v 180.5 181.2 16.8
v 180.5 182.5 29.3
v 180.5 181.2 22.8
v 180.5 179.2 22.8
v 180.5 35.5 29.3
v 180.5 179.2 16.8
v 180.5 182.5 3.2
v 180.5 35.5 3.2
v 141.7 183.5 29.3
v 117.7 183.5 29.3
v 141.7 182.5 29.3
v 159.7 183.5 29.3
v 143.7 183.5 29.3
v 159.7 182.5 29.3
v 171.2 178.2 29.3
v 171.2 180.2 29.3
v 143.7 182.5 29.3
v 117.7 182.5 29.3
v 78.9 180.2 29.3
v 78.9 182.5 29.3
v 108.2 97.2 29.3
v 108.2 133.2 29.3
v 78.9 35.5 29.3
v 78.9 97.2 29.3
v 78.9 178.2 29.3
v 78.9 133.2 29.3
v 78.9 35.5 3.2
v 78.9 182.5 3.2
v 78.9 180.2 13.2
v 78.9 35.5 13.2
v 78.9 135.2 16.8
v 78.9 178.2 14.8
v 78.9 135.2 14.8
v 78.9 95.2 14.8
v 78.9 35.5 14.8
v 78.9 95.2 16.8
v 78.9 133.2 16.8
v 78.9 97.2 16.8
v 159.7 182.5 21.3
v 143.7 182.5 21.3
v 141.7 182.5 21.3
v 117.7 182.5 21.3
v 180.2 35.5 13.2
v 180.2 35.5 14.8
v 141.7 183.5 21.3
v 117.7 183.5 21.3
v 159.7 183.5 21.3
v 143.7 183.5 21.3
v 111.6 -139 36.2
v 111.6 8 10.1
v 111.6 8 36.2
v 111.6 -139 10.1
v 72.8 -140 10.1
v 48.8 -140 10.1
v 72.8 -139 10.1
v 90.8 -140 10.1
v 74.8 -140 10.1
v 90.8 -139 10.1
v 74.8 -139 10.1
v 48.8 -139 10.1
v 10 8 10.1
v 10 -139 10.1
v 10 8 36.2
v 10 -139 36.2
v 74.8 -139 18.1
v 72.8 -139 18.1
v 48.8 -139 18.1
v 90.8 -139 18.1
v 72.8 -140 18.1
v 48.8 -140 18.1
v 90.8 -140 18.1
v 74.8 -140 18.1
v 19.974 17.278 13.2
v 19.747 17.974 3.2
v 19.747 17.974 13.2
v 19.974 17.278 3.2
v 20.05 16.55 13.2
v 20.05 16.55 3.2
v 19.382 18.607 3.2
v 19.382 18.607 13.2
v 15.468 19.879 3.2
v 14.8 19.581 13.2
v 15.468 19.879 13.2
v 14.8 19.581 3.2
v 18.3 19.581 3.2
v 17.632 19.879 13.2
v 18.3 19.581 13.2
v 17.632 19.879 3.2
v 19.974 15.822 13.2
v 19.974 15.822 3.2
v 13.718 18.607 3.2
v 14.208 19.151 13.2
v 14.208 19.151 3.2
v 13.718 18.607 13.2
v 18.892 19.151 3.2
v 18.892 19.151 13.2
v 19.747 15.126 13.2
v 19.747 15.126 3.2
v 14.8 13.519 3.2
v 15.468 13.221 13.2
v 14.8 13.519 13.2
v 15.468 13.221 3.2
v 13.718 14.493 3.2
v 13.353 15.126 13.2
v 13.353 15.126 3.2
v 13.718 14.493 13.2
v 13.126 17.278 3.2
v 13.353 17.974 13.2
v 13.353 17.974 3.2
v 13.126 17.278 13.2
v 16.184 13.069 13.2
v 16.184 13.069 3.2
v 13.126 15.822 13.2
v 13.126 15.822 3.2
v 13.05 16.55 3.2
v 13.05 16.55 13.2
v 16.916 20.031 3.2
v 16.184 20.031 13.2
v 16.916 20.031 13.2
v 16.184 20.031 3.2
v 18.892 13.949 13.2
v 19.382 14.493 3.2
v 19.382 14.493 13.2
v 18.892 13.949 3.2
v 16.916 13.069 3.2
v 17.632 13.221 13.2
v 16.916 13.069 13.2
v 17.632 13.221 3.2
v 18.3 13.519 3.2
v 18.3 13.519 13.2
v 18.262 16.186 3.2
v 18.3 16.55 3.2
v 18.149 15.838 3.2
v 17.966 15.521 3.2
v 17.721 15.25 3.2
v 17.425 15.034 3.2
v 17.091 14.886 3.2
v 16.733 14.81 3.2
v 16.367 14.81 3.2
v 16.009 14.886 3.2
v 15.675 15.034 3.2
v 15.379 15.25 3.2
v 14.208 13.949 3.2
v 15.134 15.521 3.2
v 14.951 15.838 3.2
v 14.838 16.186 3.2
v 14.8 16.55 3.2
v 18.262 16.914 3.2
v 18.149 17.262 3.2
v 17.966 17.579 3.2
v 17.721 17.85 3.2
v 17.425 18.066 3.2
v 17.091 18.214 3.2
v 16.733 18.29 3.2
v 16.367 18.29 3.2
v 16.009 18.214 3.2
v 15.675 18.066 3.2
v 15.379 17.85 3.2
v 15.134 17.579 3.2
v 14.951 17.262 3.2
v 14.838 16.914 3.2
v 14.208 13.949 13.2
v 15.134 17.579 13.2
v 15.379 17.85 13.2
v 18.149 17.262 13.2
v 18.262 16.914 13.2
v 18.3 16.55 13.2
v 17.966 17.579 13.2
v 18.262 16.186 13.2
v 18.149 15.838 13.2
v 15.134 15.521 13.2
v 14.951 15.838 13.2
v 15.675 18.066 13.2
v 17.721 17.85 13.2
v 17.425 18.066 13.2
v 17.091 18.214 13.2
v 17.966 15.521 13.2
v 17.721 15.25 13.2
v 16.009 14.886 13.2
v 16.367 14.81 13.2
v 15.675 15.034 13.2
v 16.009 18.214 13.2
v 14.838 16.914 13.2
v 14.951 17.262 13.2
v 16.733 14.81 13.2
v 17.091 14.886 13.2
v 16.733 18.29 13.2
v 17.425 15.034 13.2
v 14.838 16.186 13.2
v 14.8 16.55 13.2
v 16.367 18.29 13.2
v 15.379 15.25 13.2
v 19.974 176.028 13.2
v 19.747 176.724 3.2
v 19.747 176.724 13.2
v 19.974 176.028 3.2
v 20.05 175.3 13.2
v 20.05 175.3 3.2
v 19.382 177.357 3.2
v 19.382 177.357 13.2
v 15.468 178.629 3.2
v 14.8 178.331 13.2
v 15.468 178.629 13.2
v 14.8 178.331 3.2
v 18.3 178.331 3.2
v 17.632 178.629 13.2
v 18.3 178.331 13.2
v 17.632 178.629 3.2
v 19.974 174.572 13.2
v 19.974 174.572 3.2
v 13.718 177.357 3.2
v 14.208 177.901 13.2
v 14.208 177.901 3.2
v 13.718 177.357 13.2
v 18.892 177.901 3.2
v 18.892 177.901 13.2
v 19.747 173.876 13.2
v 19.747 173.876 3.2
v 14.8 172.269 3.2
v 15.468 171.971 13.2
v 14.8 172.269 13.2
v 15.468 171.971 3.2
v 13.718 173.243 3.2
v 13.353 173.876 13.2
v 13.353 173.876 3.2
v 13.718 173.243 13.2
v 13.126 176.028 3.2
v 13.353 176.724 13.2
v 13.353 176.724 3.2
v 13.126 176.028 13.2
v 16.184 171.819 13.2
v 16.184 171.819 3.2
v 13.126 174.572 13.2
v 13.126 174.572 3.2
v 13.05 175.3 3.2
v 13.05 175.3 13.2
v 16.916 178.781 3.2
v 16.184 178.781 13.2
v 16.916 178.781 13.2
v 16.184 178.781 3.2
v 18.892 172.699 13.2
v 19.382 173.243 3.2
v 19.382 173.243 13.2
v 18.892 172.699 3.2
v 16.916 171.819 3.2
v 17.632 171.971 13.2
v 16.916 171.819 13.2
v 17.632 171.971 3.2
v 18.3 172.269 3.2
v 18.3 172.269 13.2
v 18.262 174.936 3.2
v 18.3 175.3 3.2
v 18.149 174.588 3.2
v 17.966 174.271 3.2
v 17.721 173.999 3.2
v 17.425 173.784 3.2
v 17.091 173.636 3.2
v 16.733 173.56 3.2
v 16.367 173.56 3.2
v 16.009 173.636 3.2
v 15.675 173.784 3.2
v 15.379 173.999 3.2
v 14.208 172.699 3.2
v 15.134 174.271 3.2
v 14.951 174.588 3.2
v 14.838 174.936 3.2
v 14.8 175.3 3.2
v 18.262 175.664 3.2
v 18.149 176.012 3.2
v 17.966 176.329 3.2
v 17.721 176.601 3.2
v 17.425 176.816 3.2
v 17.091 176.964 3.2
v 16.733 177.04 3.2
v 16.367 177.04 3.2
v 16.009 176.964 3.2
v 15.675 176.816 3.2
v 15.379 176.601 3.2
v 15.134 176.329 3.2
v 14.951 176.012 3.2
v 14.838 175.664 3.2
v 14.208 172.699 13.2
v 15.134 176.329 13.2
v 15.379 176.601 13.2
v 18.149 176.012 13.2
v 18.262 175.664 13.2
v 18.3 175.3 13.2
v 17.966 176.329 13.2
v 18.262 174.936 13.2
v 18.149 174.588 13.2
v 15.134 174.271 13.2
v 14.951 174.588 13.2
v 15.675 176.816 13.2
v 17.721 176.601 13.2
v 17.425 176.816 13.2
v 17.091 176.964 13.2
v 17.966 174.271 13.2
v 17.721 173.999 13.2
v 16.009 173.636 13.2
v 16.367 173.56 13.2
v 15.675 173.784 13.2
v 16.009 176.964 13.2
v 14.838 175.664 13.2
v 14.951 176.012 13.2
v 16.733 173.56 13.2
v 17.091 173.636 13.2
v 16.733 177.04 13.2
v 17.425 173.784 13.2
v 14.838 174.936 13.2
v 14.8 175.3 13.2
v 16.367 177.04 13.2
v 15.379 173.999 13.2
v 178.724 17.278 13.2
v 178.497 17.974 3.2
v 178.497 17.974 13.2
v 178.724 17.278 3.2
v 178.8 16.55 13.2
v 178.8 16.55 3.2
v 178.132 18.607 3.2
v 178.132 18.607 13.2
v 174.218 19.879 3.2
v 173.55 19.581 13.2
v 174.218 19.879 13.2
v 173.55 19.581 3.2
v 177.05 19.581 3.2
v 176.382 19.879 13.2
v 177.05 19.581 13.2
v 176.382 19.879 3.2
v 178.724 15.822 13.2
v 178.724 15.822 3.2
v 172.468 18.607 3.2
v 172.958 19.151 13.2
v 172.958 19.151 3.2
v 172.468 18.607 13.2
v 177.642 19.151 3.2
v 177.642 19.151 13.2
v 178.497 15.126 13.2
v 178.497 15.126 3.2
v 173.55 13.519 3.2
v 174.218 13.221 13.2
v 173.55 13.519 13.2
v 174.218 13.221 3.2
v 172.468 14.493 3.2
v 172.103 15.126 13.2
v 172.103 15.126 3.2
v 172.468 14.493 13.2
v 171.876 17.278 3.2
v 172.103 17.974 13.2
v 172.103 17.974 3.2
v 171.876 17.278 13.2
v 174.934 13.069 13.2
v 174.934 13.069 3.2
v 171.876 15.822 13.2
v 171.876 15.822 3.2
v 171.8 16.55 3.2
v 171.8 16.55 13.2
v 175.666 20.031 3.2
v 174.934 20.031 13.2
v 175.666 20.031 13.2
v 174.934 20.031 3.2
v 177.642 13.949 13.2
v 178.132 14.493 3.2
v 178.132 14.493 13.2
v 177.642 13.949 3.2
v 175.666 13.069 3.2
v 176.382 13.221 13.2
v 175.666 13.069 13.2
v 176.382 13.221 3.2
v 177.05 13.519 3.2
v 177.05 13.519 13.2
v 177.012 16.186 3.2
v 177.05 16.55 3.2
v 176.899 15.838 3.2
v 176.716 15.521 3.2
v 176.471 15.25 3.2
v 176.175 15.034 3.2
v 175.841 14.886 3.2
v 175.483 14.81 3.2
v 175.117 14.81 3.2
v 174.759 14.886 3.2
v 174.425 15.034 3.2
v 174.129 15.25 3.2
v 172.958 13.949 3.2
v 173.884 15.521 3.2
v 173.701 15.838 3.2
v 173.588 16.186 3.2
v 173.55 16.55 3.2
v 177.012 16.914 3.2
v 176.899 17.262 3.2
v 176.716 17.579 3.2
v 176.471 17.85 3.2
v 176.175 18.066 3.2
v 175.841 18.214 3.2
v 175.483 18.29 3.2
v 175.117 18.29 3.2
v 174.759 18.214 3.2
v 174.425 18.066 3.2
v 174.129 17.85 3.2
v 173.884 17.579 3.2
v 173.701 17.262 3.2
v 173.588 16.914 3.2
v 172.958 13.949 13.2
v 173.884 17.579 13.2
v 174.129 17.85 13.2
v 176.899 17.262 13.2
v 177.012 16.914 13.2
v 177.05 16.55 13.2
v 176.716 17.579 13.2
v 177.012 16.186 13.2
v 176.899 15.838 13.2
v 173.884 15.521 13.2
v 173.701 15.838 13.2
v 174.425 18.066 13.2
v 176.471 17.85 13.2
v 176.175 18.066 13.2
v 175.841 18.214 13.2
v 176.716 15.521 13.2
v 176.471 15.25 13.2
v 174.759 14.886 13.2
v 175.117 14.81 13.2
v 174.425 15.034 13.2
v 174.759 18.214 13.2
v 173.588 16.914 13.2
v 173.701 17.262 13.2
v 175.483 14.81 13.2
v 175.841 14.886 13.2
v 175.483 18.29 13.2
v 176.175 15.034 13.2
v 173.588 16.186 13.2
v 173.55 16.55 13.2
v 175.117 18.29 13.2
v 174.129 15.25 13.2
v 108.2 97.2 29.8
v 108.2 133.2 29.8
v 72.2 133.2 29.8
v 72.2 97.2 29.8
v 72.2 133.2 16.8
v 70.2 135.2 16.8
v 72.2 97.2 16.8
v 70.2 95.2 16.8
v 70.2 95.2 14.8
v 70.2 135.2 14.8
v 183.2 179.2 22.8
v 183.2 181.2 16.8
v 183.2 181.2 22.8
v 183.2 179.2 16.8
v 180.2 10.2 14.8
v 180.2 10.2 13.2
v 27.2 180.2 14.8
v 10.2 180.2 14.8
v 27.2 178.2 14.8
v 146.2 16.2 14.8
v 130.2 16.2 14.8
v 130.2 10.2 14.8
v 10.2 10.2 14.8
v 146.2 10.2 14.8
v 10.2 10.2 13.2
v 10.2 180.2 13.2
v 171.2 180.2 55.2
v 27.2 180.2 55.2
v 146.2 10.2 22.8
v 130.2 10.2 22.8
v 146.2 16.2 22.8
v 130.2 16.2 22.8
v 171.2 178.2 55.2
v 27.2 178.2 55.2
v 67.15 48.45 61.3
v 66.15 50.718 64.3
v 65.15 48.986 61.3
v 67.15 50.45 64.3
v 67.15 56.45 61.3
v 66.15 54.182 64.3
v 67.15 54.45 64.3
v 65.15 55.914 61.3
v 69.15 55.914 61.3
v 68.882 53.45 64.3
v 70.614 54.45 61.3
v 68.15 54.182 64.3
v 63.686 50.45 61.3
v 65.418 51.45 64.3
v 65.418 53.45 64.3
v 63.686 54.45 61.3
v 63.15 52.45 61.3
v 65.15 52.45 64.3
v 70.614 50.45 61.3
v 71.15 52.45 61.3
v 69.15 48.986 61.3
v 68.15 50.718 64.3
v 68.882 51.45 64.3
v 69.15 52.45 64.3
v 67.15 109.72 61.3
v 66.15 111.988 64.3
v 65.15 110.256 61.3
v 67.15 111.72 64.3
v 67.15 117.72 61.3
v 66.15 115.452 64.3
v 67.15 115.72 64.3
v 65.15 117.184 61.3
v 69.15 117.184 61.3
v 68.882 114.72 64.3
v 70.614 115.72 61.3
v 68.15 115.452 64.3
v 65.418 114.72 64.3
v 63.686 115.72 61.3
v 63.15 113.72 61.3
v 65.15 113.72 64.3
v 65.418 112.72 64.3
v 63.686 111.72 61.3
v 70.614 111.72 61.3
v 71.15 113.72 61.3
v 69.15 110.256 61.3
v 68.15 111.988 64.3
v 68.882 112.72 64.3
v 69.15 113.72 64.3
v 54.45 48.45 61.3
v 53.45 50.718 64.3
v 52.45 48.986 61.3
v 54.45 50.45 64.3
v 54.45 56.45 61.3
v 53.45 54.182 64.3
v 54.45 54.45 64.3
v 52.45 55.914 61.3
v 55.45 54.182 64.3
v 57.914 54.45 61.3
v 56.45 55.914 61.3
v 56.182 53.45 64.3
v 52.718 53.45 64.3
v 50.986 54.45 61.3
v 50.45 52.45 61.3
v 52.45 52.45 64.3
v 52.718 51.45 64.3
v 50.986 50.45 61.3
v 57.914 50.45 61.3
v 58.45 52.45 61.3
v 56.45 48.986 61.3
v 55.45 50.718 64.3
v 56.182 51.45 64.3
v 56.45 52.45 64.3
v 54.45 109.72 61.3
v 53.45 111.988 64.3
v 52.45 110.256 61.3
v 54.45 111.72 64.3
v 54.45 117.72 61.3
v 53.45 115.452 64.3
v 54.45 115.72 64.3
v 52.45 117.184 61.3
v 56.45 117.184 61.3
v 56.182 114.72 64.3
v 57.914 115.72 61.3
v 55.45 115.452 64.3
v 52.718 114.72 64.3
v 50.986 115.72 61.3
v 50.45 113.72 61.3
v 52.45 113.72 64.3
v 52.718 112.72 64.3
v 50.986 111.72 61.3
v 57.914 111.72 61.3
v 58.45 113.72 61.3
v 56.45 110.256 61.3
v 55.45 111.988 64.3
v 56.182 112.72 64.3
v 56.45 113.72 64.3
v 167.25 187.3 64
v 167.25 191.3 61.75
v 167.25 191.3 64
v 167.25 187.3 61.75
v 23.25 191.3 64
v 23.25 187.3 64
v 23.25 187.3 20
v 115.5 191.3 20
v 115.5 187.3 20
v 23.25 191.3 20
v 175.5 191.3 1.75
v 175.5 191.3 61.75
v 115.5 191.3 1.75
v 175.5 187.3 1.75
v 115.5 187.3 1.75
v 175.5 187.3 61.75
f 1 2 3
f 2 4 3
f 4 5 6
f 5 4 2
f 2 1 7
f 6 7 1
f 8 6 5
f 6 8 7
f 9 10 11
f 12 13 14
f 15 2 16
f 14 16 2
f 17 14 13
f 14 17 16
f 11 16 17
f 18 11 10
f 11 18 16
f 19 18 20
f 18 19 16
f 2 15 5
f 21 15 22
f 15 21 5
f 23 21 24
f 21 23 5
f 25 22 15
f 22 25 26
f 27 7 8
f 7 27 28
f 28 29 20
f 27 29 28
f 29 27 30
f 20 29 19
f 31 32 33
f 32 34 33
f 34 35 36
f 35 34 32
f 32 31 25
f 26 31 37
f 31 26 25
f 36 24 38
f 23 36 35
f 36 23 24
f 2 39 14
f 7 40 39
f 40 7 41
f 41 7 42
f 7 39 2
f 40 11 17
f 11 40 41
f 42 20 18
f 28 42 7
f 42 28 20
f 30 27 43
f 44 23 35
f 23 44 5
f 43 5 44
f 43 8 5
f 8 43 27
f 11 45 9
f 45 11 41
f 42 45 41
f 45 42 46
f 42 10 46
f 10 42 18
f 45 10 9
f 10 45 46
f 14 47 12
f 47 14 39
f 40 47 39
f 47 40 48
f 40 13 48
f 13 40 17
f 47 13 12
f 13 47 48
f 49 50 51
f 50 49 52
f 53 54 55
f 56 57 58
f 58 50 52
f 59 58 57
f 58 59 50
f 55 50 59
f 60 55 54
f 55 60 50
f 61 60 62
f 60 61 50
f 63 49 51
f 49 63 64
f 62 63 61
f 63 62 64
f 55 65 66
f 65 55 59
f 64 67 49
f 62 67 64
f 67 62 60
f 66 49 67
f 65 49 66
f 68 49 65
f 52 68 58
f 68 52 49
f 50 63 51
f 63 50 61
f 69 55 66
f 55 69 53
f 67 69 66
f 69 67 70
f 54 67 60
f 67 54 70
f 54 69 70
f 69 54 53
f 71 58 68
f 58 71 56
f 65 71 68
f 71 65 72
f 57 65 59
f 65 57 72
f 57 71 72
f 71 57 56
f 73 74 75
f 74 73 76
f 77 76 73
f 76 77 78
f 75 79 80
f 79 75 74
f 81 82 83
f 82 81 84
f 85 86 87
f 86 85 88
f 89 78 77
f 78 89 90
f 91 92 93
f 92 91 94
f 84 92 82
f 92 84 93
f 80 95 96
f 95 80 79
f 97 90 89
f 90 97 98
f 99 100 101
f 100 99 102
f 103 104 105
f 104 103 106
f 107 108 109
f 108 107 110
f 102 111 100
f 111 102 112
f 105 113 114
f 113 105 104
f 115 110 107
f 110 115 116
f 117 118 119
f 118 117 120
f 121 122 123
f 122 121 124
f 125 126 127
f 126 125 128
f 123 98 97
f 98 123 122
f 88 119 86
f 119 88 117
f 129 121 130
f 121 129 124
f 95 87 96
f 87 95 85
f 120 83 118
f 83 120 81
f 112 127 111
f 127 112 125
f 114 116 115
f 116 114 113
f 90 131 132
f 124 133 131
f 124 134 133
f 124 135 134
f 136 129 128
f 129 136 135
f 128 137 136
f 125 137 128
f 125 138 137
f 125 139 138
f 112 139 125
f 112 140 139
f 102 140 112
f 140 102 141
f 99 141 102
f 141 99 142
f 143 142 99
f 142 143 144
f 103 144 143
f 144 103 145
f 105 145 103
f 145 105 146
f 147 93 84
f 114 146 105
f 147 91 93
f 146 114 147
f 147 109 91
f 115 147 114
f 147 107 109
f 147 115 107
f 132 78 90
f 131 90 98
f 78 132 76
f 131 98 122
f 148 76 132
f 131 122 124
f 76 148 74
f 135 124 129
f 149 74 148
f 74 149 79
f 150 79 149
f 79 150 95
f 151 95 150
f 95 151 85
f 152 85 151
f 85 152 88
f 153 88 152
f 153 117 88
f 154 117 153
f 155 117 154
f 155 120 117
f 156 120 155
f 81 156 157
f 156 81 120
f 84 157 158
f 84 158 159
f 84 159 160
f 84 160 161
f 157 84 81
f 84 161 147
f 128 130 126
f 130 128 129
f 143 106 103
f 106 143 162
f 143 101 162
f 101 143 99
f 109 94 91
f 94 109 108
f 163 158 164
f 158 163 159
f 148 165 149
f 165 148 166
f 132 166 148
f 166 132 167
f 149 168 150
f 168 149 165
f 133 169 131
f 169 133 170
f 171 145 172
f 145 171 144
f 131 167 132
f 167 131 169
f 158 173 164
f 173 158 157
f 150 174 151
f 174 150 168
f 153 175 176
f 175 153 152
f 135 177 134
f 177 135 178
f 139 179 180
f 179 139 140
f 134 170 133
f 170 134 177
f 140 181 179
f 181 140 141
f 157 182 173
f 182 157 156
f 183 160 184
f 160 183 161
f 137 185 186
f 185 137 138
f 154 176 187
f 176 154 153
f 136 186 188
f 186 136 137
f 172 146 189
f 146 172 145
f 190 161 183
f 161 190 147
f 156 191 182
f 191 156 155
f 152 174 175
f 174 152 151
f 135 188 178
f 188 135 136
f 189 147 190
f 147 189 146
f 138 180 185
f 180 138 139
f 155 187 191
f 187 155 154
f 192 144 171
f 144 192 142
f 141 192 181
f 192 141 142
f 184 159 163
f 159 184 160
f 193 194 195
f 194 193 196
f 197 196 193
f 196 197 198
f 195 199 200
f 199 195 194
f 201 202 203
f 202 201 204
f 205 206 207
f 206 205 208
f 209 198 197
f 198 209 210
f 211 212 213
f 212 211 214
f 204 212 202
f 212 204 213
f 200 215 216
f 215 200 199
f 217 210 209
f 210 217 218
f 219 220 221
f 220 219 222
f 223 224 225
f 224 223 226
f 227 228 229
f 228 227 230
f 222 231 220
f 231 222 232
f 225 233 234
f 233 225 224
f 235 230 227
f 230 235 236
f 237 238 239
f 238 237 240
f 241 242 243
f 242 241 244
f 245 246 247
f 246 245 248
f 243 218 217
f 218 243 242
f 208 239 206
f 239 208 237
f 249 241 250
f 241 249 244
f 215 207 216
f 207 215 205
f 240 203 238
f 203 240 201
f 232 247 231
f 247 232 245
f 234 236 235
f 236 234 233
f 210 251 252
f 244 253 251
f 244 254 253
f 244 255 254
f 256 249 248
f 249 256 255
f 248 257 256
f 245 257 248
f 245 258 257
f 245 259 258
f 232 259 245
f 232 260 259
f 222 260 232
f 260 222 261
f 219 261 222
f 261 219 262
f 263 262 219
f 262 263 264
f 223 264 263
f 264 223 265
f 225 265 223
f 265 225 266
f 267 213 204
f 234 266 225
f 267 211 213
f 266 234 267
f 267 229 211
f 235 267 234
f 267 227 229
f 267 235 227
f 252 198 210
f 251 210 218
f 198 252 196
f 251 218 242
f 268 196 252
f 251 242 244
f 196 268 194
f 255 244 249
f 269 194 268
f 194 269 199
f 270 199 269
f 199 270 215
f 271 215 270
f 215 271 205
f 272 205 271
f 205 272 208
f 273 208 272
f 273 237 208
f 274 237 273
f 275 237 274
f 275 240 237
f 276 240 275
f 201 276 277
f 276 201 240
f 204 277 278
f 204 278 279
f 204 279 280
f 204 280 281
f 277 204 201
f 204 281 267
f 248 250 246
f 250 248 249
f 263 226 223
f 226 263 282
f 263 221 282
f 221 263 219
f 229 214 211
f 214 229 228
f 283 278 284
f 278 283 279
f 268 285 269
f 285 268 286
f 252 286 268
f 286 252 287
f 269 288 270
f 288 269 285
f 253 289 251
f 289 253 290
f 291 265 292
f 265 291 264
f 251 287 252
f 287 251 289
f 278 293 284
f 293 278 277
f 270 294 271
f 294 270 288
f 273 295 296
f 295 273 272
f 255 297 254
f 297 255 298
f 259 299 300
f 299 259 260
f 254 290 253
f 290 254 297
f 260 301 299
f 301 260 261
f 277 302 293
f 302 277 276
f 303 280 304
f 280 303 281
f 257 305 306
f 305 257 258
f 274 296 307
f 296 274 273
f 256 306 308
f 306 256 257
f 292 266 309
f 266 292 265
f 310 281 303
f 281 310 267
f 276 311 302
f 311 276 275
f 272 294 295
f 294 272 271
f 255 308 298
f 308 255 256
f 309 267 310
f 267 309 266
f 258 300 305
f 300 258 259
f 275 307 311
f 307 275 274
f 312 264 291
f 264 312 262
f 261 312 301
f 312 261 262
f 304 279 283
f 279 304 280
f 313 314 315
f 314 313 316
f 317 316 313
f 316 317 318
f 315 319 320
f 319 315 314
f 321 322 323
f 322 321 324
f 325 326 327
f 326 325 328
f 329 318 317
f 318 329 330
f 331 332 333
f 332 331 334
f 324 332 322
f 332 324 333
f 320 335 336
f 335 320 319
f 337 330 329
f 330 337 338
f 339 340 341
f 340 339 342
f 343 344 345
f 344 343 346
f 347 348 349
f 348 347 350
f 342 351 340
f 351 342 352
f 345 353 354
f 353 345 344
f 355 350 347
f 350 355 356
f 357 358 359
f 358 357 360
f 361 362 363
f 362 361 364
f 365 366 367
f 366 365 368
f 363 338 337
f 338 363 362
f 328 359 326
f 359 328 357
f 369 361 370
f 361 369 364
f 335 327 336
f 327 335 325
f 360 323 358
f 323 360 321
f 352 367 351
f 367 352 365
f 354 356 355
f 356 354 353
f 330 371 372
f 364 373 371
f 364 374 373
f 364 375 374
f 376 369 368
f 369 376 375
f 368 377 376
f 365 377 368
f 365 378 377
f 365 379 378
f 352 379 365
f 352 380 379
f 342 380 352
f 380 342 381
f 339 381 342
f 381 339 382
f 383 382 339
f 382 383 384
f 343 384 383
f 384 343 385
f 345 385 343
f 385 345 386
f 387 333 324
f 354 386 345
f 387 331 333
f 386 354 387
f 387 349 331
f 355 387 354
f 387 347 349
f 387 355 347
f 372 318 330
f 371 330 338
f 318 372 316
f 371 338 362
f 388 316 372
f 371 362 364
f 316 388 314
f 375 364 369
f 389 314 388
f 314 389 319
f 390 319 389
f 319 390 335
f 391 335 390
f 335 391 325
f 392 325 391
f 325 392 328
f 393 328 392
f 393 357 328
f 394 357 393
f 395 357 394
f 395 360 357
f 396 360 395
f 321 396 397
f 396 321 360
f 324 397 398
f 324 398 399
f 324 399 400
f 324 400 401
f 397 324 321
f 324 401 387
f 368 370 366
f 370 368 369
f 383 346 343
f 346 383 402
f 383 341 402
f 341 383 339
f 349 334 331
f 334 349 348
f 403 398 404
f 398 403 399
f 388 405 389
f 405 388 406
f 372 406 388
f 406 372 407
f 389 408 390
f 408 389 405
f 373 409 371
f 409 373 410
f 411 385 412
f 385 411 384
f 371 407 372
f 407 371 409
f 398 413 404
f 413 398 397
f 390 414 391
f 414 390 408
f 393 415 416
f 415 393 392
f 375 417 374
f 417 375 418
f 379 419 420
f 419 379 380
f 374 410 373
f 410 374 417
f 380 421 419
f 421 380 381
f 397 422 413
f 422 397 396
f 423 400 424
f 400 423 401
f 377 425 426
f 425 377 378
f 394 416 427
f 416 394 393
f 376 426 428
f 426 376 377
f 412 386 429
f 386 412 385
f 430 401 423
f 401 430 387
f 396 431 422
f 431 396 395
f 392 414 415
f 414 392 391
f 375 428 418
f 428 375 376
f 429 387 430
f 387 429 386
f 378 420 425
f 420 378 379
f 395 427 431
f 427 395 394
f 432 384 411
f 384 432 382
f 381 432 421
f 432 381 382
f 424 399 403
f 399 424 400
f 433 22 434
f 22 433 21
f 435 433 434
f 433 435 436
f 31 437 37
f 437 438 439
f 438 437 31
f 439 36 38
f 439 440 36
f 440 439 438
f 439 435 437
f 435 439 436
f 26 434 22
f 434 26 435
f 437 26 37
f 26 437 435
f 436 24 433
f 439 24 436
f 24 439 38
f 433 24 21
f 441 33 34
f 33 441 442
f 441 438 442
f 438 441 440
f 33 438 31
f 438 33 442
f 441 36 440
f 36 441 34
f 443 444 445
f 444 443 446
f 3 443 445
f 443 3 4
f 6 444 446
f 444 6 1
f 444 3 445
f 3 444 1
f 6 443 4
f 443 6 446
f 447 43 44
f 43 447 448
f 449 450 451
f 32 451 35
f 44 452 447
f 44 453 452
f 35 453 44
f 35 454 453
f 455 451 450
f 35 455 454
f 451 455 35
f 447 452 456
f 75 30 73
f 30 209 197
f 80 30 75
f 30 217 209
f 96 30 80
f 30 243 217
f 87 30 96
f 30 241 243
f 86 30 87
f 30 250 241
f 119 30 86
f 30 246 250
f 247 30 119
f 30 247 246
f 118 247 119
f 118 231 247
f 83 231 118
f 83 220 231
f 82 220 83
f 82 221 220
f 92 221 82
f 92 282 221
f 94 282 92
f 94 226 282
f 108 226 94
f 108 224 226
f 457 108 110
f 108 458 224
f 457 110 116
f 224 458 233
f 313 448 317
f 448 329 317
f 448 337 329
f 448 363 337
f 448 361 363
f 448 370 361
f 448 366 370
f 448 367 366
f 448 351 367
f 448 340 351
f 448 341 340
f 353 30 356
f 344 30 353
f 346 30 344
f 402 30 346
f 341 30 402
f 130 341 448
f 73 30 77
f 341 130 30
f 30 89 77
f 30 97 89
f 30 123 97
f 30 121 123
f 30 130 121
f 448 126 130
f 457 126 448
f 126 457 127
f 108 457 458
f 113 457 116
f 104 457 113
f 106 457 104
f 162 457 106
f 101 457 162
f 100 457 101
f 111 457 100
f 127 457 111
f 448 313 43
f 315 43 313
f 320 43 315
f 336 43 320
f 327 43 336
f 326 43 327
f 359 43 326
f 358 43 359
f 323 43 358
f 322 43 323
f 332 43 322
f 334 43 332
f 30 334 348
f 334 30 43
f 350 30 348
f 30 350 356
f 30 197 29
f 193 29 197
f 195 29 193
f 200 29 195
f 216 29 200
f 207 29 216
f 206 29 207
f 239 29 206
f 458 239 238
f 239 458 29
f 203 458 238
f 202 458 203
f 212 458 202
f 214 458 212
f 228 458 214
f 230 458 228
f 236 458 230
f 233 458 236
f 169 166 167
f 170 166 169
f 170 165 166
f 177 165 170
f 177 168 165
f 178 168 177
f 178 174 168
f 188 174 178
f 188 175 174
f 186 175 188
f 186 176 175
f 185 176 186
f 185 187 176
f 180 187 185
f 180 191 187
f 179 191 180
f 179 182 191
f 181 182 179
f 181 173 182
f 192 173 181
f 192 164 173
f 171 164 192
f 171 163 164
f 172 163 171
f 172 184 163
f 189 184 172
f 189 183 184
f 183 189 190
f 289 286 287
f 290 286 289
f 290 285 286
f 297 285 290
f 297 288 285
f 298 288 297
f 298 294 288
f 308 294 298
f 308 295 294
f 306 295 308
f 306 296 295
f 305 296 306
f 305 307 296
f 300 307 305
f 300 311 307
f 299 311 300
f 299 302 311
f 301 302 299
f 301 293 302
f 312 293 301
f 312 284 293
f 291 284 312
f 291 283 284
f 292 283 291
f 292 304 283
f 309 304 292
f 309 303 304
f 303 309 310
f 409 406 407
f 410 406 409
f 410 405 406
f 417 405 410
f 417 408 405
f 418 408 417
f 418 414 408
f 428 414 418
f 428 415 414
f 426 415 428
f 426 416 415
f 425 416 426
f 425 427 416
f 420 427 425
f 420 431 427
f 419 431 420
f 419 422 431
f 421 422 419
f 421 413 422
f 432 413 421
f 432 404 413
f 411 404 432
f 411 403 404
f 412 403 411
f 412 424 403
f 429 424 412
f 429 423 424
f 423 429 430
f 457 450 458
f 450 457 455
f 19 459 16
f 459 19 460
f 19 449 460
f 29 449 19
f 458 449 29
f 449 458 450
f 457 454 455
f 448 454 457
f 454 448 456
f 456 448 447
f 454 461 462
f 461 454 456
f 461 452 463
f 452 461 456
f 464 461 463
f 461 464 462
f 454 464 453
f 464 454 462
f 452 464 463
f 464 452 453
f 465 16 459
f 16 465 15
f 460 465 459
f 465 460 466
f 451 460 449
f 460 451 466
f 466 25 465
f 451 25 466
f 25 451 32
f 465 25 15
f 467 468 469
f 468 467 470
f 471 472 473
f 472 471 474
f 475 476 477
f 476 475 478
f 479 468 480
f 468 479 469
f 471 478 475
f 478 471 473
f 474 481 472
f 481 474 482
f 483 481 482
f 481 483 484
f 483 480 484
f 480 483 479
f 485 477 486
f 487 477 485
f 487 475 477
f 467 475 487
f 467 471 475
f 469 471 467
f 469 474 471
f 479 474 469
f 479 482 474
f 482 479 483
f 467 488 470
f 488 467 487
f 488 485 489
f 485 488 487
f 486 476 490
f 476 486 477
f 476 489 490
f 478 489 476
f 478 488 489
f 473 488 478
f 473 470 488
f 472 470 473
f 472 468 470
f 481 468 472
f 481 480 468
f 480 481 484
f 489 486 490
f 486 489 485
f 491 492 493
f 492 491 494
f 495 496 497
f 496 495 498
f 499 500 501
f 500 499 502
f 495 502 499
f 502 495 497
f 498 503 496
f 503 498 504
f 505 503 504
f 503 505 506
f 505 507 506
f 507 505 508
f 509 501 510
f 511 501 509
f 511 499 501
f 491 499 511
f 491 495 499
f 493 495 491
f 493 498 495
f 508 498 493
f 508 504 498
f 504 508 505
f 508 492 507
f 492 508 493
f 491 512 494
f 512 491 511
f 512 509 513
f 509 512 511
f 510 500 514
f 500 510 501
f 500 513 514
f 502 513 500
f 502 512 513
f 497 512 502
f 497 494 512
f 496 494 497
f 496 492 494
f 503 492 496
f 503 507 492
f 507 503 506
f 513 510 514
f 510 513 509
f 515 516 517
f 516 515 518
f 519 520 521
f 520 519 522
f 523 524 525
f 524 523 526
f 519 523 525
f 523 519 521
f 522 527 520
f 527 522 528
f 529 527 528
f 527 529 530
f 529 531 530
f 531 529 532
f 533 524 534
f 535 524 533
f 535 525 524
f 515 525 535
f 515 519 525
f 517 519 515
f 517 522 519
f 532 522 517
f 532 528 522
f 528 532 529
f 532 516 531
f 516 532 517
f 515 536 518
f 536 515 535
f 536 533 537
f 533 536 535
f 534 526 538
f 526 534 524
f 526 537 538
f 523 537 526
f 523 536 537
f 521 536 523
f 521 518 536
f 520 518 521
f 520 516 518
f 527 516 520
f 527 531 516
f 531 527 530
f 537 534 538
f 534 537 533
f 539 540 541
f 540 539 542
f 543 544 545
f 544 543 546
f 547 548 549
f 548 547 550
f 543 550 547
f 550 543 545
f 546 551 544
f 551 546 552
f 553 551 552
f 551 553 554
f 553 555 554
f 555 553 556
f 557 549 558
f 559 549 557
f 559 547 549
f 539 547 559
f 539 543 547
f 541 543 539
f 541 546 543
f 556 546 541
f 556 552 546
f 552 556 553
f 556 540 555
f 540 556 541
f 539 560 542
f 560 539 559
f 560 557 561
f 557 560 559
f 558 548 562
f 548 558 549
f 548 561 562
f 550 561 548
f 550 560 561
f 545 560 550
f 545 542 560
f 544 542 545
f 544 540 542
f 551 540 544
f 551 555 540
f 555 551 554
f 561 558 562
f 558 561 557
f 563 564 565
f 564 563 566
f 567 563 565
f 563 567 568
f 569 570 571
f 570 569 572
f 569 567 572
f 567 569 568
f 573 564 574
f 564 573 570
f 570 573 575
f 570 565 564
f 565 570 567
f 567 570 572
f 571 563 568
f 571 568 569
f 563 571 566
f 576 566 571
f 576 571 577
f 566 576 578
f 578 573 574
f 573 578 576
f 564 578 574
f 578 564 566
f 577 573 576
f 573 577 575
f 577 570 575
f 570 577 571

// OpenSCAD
// Colo NAS Enclosure v4b — 7.5" × 7.5" × 2.5" (W × D × H)
// FIXED OVERLAP: HDD1 on bottom (right-side up), HDD2 from top (upside-down)
// Units: mm   |   Scale: 25.4 = inches

SHOW_3D = true;   // true = 3D assembly, false = flat pattern (use SVG)
USE_20GA = false;

Metal = USE_20GA ? 0.9 : 1.2;

CaseW = 190.5;  CaseD = 190.5;  CaseH = 63.5;

HDD_W = 101.6;  HDD_H = 26.1;  HDD_D = 147.0;
HDD_HOLE_FRONT = 44.45;  HDD_HOLE_REAR = 41.28;
HDD_HOLE_SIDE = 6.35;

MB_W = 170.0;   MB_D = 170.0;  MB_H = 1.6;  Standoff_H = 10.0;
Cooler_H = 13;

$fn = 30;

// ====== HDD ======
module hdd_3d(color_=true) {
    if (color_) color("#2a2a2e") cube([HDD_W, HDD_D, HDD_H]);
    else cube([HDD_W, HDD_D, HDD_H]);
    
    // PCB
    color("#1a5c2a") translate([0, HDD_D-30, 0])
        cube([HDD_W, 30, 2]);
    
    // SATA connectors
    color("#333") translate([HDD_W/2-12, HDD_D-1, HDD_H-8])
        cube([24, 2, 8]);
    color("#333") translate([HDD_W/2+14, HDD_D-1, HDD_H-8])
        cube([16, 2, 8]);
}

// ====== MOTHERBOARD ======
module motherboard_3d() {
    color("#1a7b3a", 0.95) cube([MB_W, MB_D, MB_H]);
    
    // CPU + 1U cooler
    color("#999") translate([60, MB_D-85, MB_H]) {
        cube([40, 40, 2]);
        translate([2, 2, 2]) {
            color("#aaa") cube([36, 36, Cooler_H]);
            color("#333") translate([6, 6, 6]) cube([24, 24, 5]);
        }
    }
    
    color("#ffd700") translate([110, MB_D-12, MB_H]) cube([55, 8, 6]);
    color("#444") for (i = [0:3]) {
        translate([135+i*10, MB_D-1, MB_H+2]) cube([8, 2, 6]);
    }
    color("#222") translate([120, 0, MB_H]) cube([16, 6, 8]);
    color("#666", 0.5) translate([17, MB_D-2, 0]) cube([144, 2, 42]);
}

// ====== CASE BODY ======
module case_body() {
    color("#a0a8b0", 0.15) cube([CaseW, CaseD, CaseH]);
}

// ====== 3D ASSEMBLY ======
module assembly_3d() {
    // === BOTTOM HDD LAYER ===
    // HDD1 — sits on bottom panel (right-side up), back-right
    // Z = Metal + 2mm foam pad
    hdd1_x = CaseW - HDD_W - 10;
    hdd1_y = CaseD - HDD_D - 8;
    translate([hdd1_x, hdd1_y, Metal + 2])
        hdd_3d();
    
    // HDD2 — suspended from top panel (upside-down), front-left
    // Z = CaseH - Metal - HDD_H
    hdd2_x = 10;
    hdd2_y = 8;
    translate([hdd2_x, hdd2_y, CaseH - Metal - HDD_H])
        rotate([180, 0, 0])
            hdd_3d();
    
    // === MOTHERBOARD LAYER ===
    // MB on standoffs — positioned to avoid HDD1 (bottom HDD at back-right)
    // MB placed toward front-left, I/O at rear (Y = CaseD)
    mb_x = 10.2;
    mb_y = 10.2;
    
    // Standoffs
    for (x = [mb_x + 6.35, mb_x + 6.35 + 158.75], y = [mb_y + 6.35, mb_y + 6.35 + 158.75]) {
        translate([x, y, Metal + 2])
            color("#777") difference() {
                cylinder(h=Standoff_H, d=7);
                translate([0,0,-0.5]) cylinder(h=Standoff_H+1, d=3.5);
            }
    }
    
    // Motherboard
    translate([mb_x, mb_y, Metal + Standoff_H + 2])
        motherboard_3d();
    
    // === INDICATORS ===
    // I/O shield cutout (rear wall)
    color("#444", 0.5) translate([(CaseW-144)/2, CaseD - Metal - 2, 20])
        cube([144, 4, 44]);
    
    // 60mm fan cutout (rear wall)
    color("#448", 0.3) translate([CaseW - 75, CaseD - Metal - 2, (CaseH-60)/2])
        cube([60, 4, 60]);
    
    // Top panel screw locations for HDD2
    top_z = CaseH - Metal;
    translate([0, 0, top_z]) {
        color("#ff4444", 0.7) {
            for (sx = [-1, 1], is_front = [true, false]) {
                y_off = is_front ? HDD_HOLE_FRONT : (HDD_D - HDD_HOLE_REAR);
                x_off = HDD_W/2 + sx*(HDD_W/2 - HDD_HOLE_SIDE - HDD_W/2);
                translate([hdd2_x + x_off, hdd2_y + y_off, -1])
                    cylinder(h=3, d1=8, d2=4, $fn=12);
            }
        }
    }
    
    // === CASE ===
    %case_body();
}

// ====== RENDER ======
if (SHOW_3D) {
    assembly_3d();
}

echo("====== COLO NAS CASE v4b ======");
echo(str("External: ", CaseW, "mm x ", CaseD, "mm x ", CaseH, "mm"));
echo(str("  = ", CaseW/25.4, "in x ", CaseD/25.4, "in x ", CaseH/25.4, "in"));
echo(str("HDD1 on bottom (right-side up), back-right"));
echo(str("HDD2 suspended from top (upside-down), front-left"));
echo(str("  — HDDs do NOT overlap in XY or Z"));
echo(str("Motherboard on ", Standoff_H, "mm standoffs, front-left position"));
echo(str("I/O panel: rear wall (Y = CaseD)"));
echo(str("60mm fan: rear wall, right side"));
echo("====================================");
